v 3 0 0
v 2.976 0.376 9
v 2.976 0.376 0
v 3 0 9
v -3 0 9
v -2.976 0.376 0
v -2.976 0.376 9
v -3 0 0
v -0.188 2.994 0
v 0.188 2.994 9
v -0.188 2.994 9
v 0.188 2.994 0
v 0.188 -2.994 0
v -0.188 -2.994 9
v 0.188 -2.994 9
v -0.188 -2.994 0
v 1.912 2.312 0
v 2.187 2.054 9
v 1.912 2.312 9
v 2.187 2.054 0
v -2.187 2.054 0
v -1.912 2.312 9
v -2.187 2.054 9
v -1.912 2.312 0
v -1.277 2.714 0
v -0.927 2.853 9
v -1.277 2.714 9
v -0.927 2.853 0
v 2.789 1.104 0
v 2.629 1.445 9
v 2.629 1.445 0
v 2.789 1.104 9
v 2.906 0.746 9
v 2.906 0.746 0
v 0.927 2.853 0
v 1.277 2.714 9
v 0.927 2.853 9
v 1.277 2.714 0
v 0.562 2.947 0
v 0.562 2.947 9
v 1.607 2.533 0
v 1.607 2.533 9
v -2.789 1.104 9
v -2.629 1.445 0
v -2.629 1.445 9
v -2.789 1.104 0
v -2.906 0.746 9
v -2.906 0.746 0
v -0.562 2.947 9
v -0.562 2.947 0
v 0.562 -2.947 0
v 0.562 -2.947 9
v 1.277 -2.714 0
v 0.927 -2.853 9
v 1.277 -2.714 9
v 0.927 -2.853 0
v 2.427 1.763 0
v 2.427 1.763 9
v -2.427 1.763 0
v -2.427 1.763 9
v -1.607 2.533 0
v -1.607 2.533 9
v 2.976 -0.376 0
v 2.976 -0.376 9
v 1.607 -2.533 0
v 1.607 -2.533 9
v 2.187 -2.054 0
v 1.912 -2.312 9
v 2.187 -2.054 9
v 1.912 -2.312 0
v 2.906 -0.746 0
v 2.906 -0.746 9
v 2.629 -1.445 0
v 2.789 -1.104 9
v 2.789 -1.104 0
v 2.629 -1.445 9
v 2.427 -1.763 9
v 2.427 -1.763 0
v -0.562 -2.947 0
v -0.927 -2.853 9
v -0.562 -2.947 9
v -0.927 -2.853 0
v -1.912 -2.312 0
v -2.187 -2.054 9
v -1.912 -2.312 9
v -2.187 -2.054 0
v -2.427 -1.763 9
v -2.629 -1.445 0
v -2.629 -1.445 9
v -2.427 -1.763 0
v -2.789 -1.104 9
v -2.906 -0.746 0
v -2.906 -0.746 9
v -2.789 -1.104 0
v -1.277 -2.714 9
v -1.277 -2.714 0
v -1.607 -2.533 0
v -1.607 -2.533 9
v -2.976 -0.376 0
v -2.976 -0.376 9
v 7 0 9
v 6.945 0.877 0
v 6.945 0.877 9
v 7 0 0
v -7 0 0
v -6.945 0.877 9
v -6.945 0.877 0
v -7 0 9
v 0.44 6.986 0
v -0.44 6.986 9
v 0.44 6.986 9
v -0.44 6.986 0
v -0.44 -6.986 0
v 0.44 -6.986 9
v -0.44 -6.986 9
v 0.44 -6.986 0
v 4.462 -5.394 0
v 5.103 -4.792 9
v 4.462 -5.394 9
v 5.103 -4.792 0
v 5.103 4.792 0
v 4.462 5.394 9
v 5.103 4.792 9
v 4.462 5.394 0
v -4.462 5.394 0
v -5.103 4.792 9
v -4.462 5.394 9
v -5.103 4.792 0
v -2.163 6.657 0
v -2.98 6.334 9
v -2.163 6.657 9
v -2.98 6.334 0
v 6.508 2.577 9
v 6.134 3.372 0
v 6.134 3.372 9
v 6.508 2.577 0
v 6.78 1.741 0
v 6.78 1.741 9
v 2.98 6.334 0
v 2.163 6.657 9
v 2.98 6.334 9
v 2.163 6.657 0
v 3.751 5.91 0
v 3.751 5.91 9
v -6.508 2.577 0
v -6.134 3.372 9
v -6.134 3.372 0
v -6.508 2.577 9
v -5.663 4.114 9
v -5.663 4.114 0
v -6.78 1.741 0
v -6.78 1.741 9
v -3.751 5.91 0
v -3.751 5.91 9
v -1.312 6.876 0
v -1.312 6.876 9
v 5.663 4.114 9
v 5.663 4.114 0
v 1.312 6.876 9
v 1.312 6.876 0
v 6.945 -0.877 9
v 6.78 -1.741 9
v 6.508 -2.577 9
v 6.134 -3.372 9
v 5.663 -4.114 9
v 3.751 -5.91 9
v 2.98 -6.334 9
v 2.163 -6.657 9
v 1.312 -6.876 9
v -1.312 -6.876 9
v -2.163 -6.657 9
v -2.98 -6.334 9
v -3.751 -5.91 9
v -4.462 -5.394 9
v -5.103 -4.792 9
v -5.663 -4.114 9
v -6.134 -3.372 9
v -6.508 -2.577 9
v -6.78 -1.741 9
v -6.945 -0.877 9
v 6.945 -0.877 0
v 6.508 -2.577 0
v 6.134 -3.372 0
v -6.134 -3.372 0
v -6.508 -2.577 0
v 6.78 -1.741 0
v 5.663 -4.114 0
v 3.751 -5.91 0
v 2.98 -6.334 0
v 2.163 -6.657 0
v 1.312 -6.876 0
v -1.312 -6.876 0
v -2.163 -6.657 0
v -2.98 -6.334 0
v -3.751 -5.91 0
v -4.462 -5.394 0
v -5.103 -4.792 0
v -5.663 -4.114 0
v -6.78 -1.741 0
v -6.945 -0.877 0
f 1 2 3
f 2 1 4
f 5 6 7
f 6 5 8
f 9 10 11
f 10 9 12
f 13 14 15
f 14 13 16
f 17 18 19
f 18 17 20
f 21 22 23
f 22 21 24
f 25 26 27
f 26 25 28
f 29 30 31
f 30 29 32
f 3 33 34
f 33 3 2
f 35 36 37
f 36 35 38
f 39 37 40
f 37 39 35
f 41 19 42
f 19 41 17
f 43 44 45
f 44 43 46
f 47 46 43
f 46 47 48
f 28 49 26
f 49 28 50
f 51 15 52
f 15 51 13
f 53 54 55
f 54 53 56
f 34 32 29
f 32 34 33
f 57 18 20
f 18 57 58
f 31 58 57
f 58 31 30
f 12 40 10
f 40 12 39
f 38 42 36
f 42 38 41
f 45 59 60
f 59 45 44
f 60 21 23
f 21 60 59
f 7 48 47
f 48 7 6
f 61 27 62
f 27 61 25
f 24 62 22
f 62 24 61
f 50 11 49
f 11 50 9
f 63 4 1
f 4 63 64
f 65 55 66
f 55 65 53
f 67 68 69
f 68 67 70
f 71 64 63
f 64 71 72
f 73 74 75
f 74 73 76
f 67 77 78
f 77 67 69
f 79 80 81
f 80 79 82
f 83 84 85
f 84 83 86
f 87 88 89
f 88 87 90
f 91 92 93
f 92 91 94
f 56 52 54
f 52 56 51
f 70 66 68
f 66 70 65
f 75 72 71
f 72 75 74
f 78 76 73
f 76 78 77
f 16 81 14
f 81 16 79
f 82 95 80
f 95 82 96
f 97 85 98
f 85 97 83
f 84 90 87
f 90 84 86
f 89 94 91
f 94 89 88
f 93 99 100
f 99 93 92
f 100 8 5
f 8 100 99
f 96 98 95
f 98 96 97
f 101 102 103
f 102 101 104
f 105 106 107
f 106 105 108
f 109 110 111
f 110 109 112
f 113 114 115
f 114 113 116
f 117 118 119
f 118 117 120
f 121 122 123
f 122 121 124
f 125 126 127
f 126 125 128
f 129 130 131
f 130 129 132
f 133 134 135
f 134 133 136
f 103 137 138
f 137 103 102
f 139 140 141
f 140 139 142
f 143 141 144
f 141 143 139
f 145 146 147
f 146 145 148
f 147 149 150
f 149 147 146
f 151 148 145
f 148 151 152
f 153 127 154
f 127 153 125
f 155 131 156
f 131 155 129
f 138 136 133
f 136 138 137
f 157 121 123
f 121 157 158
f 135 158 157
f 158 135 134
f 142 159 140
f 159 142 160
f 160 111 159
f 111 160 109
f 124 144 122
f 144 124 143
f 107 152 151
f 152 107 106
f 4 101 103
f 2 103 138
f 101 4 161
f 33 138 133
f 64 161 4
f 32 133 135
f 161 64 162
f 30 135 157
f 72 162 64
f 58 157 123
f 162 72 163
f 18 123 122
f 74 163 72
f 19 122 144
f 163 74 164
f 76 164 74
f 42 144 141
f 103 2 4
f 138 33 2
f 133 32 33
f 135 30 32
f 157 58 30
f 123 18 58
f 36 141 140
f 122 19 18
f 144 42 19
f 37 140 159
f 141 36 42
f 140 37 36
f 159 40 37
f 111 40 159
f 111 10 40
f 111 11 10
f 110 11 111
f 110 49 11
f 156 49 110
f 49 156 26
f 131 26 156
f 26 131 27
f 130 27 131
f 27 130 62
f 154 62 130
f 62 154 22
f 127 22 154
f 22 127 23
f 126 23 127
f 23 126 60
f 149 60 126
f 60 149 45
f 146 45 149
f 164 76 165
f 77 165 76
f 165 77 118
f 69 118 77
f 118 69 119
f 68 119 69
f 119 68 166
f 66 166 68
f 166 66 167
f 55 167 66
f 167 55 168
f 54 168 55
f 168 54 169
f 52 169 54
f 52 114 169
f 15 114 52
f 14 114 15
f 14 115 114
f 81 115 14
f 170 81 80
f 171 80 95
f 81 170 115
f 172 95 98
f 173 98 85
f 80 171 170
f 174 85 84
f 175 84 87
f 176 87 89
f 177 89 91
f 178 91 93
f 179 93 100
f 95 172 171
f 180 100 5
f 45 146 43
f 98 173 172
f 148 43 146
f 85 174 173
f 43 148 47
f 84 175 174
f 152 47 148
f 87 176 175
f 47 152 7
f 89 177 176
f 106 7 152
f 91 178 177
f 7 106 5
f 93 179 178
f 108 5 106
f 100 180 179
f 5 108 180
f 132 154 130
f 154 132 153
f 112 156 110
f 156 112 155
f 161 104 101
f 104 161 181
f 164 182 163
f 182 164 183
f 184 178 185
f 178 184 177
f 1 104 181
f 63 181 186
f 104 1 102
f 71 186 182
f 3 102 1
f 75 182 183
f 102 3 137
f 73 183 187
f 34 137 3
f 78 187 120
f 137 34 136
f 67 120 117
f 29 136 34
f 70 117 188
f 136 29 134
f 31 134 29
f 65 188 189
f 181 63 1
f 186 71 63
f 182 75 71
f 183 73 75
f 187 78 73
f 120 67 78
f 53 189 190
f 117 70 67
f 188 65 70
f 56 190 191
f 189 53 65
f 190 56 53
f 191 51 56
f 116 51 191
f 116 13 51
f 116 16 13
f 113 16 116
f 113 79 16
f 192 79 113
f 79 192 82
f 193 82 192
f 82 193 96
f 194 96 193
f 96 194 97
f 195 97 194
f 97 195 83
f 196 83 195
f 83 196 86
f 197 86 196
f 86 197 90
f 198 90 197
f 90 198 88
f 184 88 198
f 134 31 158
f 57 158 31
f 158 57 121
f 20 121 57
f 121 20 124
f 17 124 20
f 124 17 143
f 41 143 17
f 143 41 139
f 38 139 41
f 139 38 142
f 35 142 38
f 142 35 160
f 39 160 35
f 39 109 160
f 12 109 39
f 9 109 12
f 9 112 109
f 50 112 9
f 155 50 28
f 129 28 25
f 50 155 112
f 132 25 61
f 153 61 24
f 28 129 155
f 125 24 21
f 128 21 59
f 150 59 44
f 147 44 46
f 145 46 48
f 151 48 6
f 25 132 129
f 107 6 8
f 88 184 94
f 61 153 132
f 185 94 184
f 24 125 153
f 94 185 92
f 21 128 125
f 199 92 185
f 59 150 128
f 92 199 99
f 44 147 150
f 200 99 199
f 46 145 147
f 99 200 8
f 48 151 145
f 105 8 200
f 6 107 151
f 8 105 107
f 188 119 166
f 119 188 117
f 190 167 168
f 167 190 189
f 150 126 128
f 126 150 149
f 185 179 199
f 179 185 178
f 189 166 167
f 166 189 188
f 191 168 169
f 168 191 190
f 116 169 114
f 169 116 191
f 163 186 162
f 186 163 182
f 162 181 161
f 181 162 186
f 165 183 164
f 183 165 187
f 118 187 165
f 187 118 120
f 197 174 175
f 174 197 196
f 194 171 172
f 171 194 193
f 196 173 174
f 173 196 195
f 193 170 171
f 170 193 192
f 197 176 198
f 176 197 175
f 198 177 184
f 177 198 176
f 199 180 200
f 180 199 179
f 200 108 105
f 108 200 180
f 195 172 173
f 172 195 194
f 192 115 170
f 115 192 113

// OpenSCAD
$fn = 50;


difference() {
	union() {
		cylinder(h = 9, r = 7.0000000000);
	}
	union() {
		translate(v = [0.0000000000, 0.0000000000, -100.0000000000]) {
			cylinder(h = 200, r = 3.0000000000);
		}
		cylinder(h = 9, r = 1.5000000000);
		cylinder(h = 9, r = 1.5000000000);
		cylinder(h = 9, r = 1.5000000000);
	}
}
